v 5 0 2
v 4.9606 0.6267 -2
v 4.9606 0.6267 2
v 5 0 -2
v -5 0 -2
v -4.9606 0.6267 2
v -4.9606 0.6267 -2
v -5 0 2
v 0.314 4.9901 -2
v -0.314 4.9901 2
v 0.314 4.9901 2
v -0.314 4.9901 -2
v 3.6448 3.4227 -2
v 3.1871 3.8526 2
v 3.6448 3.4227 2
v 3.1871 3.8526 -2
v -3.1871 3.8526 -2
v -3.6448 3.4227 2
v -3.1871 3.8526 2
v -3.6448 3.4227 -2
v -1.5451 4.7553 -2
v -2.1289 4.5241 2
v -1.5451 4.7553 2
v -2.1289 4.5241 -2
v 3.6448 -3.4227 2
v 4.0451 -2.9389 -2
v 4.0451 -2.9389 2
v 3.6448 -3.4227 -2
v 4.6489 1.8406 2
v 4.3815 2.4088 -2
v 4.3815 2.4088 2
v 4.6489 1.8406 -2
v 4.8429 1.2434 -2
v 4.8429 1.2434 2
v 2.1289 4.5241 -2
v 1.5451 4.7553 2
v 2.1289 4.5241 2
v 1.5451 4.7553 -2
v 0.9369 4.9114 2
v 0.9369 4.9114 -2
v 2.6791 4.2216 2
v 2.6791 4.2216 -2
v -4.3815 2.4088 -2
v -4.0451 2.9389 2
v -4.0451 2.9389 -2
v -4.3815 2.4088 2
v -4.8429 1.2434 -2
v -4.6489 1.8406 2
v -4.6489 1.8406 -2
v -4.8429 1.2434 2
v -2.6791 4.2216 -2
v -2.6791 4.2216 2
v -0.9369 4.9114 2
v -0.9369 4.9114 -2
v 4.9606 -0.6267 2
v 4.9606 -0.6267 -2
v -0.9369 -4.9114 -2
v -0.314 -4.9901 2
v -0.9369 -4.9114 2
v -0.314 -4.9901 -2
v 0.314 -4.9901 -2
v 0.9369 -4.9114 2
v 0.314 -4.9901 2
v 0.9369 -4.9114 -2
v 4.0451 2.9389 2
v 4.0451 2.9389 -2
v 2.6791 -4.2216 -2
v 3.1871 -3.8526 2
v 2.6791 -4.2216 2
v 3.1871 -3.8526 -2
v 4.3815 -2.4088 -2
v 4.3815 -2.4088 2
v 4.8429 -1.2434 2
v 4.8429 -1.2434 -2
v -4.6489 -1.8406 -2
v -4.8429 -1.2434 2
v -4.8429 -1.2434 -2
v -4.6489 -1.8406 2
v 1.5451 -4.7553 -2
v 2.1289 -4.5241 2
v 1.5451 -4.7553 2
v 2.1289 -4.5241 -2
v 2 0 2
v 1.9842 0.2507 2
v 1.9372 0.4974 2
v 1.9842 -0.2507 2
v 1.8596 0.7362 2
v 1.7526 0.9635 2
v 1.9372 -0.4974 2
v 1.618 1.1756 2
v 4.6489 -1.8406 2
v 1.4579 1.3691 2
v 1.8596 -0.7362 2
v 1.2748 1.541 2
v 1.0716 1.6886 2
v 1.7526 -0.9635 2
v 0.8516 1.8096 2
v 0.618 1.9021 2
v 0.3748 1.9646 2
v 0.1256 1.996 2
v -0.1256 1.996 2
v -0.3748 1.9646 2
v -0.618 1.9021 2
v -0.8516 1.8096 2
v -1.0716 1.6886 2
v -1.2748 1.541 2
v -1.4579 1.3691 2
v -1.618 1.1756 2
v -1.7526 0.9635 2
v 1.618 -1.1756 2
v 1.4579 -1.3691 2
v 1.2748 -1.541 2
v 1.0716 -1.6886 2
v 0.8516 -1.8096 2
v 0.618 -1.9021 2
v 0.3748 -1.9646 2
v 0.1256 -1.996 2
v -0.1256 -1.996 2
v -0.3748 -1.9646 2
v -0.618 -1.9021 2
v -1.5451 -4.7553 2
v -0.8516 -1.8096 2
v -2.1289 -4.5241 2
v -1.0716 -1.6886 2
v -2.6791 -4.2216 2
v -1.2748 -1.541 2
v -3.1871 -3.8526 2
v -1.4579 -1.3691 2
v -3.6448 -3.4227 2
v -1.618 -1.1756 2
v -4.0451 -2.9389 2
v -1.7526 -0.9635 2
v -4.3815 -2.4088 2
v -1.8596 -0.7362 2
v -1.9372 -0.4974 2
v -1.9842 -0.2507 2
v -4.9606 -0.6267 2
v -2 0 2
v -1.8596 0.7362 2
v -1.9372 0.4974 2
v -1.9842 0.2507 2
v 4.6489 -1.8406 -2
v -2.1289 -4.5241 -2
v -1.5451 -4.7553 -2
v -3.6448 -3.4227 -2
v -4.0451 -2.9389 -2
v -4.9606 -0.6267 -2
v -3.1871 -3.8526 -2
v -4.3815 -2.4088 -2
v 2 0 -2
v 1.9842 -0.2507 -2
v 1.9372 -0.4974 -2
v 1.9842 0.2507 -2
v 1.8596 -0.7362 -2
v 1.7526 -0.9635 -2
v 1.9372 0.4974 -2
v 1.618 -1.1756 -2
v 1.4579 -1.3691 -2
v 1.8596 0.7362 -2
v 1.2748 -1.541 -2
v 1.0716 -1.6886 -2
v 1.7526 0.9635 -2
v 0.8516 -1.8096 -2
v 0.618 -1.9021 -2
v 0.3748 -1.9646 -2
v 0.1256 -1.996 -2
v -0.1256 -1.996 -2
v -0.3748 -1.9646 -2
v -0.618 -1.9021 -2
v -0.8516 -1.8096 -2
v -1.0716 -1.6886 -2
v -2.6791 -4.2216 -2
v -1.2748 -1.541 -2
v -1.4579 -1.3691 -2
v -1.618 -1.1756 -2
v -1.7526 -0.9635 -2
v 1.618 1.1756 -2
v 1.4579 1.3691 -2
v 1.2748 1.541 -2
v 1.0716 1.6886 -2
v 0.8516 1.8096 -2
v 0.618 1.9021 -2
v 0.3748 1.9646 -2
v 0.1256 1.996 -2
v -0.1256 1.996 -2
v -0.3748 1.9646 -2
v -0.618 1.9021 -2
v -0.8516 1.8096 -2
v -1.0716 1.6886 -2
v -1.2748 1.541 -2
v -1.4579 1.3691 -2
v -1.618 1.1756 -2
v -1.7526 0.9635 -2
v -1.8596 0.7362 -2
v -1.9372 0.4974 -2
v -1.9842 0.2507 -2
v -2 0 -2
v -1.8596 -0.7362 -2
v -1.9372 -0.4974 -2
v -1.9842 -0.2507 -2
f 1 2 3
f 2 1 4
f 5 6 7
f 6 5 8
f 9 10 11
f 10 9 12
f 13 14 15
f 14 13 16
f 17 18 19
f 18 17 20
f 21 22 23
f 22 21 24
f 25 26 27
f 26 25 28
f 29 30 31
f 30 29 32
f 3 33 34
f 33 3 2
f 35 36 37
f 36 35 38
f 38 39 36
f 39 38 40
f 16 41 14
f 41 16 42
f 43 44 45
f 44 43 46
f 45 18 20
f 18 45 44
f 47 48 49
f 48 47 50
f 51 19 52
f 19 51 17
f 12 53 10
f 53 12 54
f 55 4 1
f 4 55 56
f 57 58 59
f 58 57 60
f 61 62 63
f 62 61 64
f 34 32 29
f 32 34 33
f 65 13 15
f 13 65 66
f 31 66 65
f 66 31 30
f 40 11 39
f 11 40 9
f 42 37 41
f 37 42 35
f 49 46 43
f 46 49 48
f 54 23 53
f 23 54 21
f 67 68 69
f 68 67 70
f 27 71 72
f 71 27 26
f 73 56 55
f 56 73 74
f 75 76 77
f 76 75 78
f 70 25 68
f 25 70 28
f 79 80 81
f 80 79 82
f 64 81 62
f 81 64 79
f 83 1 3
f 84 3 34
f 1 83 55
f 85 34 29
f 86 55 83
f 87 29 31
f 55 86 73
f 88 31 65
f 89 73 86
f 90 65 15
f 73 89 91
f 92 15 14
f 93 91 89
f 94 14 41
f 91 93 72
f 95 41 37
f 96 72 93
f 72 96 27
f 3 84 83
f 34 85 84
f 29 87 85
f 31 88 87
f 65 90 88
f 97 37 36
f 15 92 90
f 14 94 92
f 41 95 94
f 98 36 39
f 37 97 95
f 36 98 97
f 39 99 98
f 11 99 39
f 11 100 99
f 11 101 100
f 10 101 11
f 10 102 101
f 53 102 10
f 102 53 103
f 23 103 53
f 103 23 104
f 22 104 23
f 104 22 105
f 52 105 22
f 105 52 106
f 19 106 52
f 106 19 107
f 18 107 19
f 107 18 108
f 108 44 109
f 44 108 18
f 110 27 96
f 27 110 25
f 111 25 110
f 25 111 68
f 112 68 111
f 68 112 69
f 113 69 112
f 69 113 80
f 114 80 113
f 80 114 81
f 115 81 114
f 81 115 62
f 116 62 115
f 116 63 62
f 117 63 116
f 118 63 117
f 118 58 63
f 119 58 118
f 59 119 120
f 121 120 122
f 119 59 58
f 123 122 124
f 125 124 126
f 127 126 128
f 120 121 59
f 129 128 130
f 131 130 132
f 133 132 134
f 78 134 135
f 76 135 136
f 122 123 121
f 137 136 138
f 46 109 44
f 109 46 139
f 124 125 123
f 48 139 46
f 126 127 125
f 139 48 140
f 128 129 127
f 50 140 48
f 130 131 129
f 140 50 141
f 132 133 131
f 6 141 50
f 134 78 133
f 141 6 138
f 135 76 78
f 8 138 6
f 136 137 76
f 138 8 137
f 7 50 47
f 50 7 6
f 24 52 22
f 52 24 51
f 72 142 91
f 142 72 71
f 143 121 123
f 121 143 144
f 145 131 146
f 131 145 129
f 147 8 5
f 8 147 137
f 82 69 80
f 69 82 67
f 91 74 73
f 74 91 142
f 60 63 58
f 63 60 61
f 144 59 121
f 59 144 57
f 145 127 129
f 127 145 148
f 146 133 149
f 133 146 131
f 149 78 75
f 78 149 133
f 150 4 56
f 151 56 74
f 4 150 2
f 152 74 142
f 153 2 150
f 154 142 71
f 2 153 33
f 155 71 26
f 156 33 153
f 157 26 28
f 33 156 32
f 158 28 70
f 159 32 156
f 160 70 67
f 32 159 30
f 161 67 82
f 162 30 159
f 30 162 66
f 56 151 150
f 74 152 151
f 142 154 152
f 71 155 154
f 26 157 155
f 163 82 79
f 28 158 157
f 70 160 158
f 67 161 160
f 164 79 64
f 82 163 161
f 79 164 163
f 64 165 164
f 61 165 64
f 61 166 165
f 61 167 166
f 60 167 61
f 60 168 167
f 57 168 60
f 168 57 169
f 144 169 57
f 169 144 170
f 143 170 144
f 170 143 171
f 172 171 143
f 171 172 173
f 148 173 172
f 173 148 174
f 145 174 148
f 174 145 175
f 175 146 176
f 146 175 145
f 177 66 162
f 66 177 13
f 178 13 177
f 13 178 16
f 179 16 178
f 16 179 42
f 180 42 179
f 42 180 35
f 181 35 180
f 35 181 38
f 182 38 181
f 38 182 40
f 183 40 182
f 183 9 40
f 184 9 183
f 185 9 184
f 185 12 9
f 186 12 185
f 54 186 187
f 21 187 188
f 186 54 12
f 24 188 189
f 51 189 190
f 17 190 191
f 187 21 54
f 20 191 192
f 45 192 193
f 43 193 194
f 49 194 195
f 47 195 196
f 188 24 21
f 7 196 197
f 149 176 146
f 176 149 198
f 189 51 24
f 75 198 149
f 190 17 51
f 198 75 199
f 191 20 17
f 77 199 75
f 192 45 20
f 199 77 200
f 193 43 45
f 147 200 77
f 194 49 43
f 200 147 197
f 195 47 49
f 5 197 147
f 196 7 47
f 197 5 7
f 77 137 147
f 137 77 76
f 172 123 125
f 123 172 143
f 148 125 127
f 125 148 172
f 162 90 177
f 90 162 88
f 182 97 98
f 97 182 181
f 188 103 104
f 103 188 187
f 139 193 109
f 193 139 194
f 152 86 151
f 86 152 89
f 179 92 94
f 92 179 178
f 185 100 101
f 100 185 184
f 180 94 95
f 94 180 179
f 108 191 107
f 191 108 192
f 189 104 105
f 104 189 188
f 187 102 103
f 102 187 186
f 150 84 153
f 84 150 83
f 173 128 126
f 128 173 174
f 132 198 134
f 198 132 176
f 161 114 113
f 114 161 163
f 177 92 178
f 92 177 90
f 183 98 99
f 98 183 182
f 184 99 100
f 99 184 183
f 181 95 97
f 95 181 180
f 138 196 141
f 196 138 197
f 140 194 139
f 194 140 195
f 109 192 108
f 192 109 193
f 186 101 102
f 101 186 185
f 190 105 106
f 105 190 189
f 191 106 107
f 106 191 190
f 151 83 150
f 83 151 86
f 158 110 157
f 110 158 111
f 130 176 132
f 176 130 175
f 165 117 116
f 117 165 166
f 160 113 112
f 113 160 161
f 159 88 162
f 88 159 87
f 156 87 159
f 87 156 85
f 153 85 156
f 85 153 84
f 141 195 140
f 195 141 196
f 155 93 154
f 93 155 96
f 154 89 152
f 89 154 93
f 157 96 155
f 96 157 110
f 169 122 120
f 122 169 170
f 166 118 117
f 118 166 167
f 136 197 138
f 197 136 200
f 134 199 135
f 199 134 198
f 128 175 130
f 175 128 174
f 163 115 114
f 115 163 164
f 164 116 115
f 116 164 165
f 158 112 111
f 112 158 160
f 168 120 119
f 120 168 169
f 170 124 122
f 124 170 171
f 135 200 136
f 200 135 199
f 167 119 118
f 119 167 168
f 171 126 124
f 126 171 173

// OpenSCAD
$fn = 50;


difference() {
	union() {
		translate(v = [0, 0, -2.0000000000]) {
			cylinder(h = 4, r = 5.0000000000);
		}
	}
	union() {
		translate(v = [0, 0, -100.0000000000]) {
			cylinder(h = 200, r = 2.0000000000);
		}
	}
}
